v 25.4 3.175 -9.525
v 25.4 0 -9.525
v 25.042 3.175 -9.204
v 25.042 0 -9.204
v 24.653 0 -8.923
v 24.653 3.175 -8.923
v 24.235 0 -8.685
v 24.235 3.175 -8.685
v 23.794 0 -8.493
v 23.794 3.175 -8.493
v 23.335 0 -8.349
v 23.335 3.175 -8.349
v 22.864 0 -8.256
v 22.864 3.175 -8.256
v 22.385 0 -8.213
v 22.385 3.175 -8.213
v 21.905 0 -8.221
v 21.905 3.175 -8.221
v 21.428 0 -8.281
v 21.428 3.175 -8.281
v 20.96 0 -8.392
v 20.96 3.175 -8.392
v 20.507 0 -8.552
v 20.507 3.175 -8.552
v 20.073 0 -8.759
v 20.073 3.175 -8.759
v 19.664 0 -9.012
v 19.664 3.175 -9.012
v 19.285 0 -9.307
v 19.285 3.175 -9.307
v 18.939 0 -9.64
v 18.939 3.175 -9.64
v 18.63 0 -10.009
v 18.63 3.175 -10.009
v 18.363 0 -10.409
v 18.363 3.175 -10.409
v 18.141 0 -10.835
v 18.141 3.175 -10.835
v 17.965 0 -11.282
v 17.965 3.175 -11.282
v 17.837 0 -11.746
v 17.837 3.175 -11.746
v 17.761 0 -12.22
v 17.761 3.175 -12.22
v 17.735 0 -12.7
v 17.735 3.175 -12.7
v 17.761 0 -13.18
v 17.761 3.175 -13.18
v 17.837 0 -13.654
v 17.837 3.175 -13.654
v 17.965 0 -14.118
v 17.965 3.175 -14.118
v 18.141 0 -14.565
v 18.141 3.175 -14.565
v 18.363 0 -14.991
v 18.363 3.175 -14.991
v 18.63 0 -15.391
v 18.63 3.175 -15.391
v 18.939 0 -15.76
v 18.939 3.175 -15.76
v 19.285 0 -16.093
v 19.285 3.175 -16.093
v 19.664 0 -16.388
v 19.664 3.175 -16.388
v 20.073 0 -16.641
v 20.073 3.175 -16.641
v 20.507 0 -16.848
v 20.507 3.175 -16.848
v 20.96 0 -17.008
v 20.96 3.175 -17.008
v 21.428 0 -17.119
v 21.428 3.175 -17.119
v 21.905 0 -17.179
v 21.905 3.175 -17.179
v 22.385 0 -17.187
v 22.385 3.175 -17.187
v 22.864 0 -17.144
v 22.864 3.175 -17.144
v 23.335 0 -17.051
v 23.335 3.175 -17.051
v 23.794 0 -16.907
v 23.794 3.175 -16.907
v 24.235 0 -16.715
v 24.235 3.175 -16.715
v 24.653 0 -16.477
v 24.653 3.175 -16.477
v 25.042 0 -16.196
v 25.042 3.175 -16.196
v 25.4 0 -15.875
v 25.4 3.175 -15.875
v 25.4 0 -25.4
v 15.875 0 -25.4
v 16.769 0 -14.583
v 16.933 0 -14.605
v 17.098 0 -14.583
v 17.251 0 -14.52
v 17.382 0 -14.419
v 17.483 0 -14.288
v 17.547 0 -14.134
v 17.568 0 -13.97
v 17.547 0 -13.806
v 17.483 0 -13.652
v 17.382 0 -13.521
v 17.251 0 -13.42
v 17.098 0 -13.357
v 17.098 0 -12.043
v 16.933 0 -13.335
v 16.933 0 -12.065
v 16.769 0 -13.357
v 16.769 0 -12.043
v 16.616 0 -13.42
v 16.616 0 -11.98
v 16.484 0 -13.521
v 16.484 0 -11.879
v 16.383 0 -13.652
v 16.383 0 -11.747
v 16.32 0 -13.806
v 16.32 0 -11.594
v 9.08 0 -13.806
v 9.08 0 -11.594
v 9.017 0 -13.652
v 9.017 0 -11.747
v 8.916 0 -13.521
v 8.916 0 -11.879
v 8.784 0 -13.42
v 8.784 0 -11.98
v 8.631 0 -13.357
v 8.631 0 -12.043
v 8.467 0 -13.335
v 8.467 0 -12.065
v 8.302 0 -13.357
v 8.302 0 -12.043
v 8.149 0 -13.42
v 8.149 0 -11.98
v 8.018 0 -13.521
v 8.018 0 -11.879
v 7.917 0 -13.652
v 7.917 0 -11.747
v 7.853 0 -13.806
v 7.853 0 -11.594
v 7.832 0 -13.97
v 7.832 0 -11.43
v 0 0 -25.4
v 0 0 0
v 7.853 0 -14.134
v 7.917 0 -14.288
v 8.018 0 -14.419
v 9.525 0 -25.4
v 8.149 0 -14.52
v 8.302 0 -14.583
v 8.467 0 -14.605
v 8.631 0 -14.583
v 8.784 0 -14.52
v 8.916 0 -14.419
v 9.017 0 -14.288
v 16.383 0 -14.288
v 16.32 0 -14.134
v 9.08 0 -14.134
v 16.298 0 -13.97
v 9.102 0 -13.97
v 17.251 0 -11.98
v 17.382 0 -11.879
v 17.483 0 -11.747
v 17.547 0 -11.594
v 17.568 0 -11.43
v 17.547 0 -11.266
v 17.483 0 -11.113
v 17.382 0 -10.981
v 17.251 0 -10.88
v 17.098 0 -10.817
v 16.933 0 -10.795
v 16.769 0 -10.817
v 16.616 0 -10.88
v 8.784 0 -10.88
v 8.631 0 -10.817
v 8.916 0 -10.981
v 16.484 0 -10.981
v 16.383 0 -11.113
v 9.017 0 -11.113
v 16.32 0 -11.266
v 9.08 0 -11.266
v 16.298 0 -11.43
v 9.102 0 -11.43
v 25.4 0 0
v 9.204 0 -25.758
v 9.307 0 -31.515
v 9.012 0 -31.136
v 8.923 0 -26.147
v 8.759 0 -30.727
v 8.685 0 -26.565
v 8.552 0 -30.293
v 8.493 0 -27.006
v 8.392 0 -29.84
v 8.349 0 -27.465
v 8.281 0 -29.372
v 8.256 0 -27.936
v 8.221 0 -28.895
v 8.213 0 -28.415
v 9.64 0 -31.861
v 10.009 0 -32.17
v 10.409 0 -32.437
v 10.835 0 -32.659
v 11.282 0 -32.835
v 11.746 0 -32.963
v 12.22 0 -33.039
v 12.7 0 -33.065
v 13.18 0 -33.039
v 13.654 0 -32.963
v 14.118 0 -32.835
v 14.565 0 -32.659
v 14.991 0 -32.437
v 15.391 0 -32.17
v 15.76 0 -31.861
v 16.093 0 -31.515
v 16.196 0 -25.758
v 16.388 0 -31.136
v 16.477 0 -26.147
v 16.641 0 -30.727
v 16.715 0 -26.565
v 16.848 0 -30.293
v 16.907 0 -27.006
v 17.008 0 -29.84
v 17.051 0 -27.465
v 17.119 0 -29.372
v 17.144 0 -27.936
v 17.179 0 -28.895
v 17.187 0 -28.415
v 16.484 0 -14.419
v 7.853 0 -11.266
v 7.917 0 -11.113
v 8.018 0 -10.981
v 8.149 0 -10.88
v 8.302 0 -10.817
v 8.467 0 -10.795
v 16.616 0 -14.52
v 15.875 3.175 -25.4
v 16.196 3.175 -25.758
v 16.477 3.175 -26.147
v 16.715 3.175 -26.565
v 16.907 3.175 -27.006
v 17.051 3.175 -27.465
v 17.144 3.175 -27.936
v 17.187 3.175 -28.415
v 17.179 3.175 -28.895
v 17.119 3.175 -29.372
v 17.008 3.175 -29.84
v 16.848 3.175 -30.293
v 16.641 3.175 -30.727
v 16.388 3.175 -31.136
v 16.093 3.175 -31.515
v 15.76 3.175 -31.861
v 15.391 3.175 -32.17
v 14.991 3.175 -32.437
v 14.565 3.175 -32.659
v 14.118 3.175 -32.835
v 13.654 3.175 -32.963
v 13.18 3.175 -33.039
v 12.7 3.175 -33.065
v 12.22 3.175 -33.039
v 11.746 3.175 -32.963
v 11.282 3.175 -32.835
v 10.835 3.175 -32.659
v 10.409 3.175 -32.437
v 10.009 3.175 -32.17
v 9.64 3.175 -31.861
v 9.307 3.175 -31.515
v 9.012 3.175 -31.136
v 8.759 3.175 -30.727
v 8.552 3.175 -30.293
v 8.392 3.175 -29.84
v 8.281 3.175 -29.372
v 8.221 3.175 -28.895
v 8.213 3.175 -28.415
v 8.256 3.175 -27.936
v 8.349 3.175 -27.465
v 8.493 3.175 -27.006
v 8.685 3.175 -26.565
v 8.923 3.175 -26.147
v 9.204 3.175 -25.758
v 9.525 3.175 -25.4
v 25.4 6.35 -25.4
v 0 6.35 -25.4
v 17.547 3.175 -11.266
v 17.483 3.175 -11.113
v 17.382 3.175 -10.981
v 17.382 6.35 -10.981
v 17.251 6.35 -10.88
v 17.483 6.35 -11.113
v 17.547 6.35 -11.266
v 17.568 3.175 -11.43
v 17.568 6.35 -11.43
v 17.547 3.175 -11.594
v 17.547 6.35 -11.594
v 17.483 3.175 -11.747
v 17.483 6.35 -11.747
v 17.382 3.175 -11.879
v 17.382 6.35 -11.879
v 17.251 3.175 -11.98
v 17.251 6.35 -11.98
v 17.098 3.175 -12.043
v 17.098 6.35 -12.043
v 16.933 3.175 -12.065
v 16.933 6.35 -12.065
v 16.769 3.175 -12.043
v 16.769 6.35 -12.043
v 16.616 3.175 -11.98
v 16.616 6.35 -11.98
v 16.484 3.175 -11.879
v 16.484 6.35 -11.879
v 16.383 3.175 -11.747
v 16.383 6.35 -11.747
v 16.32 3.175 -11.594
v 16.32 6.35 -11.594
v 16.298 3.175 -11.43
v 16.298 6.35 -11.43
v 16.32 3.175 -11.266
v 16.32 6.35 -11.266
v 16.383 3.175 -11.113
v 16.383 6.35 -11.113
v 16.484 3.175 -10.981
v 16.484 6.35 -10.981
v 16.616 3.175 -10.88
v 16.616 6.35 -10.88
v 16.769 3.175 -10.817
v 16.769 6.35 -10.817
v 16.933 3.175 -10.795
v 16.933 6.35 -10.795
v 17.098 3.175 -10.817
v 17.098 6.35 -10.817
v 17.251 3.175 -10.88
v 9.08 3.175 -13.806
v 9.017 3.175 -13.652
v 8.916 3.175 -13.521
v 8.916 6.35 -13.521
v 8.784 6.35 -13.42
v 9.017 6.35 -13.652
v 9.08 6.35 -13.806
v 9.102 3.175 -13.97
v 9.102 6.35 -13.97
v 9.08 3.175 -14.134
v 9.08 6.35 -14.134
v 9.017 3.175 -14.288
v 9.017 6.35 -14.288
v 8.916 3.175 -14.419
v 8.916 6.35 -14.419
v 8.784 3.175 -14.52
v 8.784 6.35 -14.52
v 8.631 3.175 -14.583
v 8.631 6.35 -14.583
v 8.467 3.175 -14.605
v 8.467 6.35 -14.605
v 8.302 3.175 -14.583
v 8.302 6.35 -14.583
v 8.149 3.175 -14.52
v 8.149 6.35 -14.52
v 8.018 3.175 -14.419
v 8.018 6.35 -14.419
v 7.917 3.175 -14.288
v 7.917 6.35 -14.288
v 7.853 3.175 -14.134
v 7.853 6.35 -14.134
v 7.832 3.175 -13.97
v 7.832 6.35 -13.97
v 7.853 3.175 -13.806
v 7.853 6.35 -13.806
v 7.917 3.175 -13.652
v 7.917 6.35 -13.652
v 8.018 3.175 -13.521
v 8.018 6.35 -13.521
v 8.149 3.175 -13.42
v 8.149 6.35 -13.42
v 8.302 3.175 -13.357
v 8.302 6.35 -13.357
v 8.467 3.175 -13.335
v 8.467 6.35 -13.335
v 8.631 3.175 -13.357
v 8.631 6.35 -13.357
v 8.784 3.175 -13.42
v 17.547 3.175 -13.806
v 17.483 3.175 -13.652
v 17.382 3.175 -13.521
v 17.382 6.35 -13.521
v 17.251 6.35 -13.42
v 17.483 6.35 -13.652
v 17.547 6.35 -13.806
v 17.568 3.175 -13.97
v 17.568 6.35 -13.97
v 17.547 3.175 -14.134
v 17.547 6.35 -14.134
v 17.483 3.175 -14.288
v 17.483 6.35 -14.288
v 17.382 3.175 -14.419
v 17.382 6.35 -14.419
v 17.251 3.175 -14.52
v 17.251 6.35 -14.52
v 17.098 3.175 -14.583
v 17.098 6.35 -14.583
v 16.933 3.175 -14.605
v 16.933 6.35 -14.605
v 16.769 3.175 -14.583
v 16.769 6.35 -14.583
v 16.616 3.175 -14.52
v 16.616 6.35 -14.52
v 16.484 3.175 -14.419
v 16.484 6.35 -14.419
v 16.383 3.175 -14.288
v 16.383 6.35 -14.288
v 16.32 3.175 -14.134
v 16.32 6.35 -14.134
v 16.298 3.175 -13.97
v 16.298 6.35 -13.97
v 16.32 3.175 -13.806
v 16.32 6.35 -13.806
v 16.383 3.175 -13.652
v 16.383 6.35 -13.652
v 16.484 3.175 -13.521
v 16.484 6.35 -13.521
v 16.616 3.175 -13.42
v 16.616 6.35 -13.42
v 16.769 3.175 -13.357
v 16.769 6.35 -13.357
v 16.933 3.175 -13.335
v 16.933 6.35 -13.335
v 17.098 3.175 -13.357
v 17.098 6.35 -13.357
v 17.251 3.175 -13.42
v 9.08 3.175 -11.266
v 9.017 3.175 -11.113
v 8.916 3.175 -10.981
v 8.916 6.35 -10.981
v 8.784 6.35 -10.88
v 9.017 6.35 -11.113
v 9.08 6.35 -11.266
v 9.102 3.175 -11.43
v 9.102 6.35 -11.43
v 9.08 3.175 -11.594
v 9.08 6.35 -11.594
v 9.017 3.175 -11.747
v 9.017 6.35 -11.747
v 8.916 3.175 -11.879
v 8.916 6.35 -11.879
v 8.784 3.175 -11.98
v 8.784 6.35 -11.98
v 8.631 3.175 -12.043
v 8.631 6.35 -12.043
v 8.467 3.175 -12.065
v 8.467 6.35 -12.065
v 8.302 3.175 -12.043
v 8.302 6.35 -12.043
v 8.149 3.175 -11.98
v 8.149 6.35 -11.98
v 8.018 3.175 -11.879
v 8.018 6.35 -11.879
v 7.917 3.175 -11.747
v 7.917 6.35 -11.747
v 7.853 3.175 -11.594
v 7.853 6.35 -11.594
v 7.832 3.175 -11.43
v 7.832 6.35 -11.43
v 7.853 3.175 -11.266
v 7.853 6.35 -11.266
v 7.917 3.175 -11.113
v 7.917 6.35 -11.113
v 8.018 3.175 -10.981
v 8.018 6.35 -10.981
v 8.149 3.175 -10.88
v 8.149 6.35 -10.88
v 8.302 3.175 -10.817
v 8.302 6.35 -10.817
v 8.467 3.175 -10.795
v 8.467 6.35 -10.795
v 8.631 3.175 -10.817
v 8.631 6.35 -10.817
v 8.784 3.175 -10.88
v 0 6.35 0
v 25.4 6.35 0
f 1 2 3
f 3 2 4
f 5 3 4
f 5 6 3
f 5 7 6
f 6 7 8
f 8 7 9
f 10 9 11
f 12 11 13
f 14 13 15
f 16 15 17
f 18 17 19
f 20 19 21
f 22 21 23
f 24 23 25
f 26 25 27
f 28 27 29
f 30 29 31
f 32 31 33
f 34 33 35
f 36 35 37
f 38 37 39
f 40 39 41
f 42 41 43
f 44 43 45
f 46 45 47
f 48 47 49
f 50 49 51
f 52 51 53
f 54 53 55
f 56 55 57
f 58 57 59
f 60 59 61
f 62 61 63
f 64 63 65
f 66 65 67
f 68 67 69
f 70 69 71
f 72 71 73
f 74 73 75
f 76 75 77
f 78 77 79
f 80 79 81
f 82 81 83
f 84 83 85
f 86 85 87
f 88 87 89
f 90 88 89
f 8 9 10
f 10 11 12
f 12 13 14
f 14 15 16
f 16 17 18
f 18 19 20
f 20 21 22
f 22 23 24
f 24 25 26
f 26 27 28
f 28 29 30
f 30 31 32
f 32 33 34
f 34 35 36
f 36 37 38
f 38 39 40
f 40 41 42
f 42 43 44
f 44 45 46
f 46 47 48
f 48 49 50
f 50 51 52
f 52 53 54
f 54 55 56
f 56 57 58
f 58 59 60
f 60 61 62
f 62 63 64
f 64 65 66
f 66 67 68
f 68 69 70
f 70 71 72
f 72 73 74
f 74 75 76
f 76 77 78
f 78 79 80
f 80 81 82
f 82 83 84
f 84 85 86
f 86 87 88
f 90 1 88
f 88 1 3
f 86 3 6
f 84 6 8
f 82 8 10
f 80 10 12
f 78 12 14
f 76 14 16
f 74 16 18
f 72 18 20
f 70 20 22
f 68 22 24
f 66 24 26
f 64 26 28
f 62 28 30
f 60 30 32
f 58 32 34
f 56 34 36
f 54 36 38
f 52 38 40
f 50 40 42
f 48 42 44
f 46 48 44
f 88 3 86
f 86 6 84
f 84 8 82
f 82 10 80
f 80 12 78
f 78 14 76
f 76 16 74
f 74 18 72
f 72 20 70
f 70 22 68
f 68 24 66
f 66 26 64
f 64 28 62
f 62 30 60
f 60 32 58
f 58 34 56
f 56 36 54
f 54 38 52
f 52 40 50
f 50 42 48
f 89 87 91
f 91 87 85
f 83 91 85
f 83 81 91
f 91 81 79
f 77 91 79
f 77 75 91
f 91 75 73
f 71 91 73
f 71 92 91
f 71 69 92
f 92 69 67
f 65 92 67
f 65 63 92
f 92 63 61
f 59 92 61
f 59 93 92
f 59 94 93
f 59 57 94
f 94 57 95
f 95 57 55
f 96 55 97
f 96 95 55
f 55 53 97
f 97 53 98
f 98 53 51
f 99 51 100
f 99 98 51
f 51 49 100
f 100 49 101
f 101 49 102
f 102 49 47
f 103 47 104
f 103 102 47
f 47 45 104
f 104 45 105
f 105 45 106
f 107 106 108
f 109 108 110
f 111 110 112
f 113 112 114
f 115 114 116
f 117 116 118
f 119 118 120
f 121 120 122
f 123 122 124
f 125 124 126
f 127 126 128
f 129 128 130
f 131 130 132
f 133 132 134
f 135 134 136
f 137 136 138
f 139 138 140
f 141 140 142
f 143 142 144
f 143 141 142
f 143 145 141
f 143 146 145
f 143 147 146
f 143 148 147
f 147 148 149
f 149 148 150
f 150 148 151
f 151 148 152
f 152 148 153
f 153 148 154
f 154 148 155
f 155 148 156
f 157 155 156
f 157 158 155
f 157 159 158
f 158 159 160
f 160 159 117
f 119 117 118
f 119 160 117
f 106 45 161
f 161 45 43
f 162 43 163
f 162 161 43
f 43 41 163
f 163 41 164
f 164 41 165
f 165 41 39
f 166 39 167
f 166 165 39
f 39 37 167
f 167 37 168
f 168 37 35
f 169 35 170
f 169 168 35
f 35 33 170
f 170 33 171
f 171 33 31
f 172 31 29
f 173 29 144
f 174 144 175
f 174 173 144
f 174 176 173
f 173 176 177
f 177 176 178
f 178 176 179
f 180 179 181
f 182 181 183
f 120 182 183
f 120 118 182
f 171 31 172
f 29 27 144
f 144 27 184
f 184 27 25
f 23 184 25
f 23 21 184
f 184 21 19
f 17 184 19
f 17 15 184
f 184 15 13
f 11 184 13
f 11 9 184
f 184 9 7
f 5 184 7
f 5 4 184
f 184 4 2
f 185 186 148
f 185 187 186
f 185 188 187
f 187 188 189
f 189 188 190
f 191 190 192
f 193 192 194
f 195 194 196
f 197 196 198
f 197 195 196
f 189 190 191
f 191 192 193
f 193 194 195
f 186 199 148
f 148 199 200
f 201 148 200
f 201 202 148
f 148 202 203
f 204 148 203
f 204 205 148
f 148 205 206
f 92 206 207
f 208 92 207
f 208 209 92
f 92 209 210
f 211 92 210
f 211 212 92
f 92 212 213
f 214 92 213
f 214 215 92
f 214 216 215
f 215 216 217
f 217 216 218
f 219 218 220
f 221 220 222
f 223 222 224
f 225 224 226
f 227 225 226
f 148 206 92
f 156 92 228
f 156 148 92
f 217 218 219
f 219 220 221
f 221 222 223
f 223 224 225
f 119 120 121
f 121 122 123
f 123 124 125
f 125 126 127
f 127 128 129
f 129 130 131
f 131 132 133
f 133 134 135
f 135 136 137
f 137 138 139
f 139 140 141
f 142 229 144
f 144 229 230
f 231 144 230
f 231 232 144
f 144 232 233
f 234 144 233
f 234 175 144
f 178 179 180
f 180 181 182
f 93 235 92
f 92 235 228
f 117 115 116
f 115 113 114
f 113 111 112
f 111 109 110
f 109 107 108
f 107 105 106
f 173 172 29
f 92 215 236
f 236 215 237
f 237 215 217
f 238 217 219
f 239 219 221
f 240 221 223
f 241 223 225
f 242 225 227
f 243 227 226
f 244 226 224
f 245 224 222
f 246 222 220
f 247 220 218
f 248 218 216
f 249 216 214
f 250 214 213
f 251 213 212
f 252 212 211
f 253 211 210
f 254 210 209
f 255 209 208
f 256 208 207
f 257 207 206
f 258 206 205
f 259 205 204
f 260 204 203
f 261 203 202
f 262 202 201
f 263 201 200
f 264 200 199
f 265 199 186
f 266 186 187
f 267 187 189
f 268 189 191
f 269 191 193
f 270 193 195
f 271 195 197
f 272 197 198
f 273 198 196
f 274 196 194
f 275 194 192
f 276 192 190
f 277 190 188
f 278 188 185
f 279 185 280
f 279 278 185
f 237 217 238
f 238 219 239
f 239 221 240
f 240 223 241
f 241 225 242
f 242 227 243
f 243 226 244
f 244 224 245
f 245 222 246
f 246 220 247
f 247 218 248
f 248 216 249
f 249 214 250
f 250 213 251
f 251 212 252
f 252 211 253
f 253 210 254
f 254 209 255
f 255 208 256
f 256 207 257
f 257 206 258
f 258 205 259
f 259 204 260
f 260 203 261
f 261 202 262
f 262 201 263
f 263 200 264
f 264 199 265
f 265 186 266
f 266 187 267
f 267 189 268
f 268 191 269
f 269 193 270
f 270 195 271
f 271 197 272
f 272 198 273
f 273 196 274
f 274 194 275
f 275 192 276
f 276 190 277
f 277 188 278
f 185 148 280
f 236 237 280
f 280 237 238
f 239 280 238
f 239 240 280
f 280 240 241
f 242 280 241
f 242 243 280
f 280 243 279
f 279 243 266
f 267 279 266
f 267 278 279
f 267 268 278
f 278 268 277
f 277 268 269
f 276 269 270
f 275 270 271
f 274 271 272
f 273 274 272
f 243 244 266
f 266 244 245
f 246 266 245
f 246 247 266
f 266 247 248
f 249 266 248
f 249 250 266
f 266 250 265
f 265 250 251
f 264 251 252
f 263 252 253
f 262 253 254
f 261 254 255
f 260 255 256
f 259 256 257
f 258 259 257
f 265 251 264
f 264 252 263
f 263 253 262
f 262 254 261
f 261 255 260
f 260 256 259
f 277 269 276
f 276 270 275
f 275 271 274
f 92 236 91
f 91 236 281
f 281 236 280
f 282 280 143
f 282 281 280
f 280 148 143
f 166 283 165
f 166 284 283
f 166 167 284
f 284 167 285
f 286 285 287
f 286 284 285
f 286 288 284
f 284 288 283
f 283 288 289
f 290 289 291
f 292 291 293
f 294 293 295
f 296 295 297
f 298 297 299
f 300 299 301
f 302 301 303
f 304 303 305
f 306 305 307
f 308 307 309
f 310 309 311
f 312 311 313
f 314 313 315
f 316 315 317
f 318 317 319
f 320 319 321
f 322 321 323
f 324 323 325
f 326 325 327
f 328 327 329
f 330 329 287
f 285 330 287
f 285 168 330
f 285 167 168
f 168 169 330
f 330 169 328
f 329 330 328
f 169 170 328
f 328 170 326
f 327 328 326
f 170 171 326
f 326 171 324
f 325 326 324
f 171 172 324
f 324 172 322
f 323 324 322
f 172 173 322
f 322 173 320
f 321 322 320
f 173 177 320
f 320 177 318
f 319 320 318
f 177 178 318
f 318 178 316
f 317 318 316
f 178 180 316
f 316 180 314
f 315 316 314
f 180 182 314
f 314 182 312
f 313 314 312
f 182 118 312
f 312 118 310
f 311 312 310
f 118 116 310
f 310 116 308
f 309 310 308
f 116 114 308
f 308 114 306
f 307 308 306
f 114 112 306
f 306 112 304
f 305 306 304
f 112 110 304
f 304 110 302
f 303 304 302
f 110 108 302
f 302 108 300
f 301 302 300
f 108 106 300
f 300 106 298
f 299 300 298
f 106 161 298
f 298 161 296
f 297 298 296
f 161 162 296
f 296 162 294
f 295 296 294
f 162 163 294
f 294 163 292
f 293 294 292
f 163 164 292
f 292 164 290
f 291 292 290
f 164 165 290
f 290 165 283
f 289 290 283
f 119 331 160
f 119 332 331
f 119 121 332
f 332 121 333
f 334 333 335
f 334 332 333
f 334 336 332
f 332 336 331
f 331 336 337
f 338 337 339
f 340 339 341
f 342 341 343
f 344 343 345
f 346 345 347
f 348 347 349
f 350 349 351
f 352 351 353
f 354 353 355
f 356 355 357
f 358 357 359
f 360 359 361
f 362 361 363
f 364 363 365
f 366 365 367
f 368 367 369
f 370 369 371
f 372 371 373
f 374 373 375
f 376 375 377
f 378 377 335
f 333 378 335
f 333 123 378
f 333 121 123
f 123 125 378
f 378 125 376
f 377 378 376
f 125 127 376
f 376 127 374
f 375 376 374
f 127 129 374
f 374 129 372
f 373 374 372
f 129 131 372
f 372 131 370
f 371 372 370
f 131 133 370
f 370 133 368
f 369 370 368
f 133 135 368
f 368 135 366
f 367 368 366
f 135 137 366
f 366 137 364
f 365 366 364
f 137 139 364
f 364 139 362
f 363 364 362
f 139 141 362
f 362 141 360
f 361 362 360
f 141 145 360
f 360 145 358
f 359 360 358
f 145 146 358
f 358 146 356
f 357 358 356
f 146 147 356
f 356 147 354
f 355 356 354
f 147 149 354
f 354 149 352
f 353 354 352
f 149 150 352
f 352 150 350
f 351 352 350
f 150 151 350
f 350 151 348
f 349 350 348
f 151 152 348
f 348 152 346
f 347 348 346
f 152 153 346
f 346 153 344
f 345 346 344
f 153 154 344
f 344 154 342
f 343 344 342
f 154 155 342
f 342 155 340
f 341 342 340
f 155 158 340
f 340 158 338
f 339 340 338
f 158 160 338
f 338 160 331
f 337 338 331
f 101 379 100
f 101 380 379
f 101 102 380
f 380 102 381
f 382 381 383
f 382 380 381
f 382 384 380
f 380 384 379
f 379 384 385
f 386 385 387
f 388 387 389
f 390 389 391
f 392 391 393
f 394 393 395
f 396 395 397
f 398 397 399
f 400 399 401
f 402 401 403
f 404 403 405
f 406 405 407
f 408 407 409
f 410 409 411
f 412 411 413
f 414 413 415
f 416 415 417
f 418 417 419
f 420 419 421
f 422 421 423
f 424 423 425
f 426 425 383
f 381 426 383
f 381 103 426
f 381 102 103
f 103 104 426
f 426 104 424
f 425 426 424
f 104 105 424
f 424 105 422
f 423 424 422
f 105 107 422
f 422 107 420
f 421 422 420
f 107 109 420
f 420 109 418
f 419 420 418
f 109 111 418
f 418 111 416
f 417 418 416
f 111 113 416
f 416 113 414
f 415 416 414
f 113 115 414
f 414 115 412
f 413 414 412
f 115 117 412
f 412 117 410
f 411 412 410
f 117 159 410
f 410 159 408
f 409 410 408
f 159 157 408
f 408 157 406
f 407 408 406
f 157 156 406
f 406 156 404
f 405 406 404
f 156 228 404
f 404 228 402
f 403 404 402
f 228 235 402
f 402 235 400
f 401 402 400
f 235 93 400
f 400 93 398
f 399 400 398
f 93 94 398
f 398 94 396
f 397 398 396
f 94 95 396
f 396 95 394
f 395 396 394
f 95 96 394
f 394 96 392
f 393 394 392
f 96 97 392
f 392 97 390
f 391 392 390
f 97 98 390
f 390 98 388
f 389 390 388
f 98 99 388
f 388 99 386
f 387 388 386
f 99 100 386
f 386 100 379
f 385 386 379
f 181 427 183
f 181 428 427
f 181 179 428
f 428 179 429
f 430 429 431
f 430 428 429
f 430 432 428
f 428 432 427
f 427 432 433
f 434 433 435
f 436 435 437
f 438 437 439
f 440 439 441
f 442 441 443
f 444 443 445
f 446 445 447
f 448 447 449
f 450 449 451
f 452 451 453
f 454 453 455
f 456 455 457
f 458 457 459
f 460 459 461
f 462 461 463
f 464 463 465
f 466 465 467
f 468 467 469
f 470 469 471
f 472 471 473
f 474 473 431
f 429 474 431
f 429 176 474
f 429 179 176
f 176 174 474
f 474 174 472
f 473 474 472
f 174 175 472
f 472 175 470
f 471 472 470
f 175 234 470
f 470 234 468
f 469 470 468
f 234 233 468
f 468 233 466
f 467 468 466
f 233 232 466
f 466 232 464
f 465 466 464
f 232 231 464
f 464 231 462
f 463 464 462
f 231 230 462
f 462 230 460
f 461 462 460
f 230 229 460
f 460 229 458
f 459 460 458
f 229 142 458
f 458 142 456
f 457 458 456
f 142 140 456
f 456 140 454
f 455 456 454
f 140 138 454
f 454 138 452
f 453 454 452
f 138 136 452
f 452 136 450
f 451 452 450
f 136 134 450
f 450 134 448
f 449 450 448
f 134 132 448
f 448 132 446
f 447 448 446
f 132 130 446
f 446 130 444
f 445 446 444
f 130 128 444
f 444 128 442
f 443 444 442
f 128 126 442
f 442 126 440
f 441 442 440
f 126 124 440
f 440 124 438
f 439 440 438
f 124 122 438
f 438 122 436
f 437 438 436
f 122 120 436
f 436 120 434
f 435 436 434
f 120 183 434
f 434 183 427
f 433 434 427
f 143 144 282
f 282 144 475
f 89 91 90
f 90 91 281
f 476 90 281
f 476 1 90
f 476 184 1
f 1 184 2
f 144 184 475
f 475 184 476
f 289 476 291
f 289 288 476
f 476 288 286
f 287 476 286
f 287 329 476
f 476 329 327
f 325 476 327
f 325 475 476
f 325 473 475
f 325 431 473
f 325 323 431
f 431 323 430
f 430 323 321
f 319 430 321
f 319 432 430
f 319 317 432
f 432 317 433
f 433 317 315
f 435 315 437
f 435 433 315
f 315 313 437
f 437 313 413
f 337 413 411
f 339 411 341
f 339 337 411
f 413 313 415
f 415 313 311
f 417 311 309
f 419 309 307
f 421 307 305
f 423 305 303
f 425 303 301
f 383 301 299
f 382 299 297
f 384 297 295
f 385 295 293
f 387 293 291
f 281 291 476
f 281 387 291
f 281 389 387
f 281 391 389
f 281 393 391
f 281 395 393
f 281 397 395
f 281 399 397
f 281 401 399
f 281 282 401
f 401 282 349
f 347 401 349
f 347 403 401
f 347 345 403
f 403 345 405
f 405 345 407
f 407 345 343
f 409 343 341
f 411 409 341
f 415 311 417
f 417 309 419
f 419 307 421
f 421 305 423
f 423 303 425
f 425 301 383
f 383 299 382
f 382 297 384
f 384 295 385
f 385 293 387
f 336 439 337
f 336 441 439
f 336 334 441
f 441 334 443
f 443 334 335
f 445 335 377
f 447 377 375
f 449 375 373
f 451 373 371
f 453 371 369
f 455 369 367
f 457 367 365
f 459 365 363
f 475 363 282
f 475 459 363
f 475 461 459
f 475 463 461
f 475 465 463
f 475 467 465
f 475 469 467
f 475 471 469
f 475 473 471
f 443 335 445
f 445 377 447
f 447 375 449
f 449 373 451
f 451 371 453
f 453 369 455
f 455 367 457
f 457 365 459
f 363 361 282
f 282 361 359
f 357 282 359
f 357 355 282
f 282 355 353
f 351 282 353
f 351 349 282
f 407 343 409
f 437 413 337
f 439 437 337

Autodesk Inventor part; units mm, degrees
ref_plane "YZ Plane" through (0, 0, 0) normal (1, 0, 0) x (0, 1, 0)
ref_plane "XZ Plane" through (0, 0, 0) normal (0, 1, 0) x (-1, 0, 0)
ref_plane "XY Plane" through (0, 0, 0) normal (0, 0, 1) x (1, 0, 0)
sketch "Sketch1" plane through (0, 0, 0) normal (0, 1, 0) x (-1, 0, 0)
  line L0 (0, 0) -> (-25.4, 0)
  line L1 (-25.4, 0) -> (-25.4, -25.4)
  line L2 (-25.4, -25.4) -> (0, -25.4)
  line L3 (0, -25.4) -> (0, 0)
  dimension "d0" = 25.4
extrude "Extrusion1" add sketch "Sketch1" along normal blind 6.35
sketch "Sketch2" plane through (0, 6.35, 0) normal (0, 1, 0) x (1, 0, 0)
  circle A0 centre (8.4667, 13.97) radius 0.635
  circle A1 centre (16.9333, 13.97) radius 0.635
  circle A2 centre (16.9333, 11.43) radius 0.635
  circle A3 centre (8.4667, 11.43) radius 0.635
  line L0 (25.4, 0) -> (25.4, 25.4) projected
  line L1 (0, 0) -> (25.4, 0) projected
  dimension "d3" = 8.4667
  dimension "d4" = 8.4667
  dimension "d5" = 2.54
  dimension "d6" = 1.27
  dimension "d7" = 11.43
extrude "Extrusion2" cut sketch "Sketch2" against normal blind 6.35
sketch "Sketch4" plane through (0, 0, 0) normal (0, -1, 0) x (1, 0, 0)
  line L0 (25.4, -25.4) -> (0, -25.4) projected
  arc A0 (9.525, -25.4) -> (15.875, -25.4) centre (12.7, -28.575) ccw
  line L1 (15.875, -25.4) -> (9.525, -25.4)
  point P0 (0, 0)
  dimension "d10" = 90
  dimension "d11" = 6.35
  dimension "d12" = 9.525
extrude "Extrusion3" add sketch "Sketch4" against normal blind 3.175
sketch "Sketch6" plane through (0, 0, 0) normal (0, -1, 0) x (1, 0, 0)
  line L0 (25.4, 0) -> (25.4, -25.4) projected
  arc A0 (25.4, -9.525) -> (25.4, -15.875) centre (22.225, -12.7) ccw
  line L1 (25.4, -15.875) -> (25.4, -9.525)
  point P0 (0, 0)
  dimension "d21" = 6.35
  dimension "d22" = 90
  dimension "d23" = 9.525
extrude "Extrusion5" cut sketch "Sketch6" against normal blind 3.175
equation "\"d1\" = 0.25 * d0"
equation "\"d3\" = 0.333333 * d0"
equation "\"d4\" = d3"
equation "\"d8\" = 0.25 * d0"
equation "\"d11\" = 0.25 * d0"
equation "\"d12\" = 0.375 * d0"
equation "\"d13\" = 0.5 * d1"
equation "\"d21\" = 0.25 * d0"
equation "\"d23\" = 0.375 * d0"
equation "\"d24\" = 0.5 * d1"
properties part number "pieceBase"
